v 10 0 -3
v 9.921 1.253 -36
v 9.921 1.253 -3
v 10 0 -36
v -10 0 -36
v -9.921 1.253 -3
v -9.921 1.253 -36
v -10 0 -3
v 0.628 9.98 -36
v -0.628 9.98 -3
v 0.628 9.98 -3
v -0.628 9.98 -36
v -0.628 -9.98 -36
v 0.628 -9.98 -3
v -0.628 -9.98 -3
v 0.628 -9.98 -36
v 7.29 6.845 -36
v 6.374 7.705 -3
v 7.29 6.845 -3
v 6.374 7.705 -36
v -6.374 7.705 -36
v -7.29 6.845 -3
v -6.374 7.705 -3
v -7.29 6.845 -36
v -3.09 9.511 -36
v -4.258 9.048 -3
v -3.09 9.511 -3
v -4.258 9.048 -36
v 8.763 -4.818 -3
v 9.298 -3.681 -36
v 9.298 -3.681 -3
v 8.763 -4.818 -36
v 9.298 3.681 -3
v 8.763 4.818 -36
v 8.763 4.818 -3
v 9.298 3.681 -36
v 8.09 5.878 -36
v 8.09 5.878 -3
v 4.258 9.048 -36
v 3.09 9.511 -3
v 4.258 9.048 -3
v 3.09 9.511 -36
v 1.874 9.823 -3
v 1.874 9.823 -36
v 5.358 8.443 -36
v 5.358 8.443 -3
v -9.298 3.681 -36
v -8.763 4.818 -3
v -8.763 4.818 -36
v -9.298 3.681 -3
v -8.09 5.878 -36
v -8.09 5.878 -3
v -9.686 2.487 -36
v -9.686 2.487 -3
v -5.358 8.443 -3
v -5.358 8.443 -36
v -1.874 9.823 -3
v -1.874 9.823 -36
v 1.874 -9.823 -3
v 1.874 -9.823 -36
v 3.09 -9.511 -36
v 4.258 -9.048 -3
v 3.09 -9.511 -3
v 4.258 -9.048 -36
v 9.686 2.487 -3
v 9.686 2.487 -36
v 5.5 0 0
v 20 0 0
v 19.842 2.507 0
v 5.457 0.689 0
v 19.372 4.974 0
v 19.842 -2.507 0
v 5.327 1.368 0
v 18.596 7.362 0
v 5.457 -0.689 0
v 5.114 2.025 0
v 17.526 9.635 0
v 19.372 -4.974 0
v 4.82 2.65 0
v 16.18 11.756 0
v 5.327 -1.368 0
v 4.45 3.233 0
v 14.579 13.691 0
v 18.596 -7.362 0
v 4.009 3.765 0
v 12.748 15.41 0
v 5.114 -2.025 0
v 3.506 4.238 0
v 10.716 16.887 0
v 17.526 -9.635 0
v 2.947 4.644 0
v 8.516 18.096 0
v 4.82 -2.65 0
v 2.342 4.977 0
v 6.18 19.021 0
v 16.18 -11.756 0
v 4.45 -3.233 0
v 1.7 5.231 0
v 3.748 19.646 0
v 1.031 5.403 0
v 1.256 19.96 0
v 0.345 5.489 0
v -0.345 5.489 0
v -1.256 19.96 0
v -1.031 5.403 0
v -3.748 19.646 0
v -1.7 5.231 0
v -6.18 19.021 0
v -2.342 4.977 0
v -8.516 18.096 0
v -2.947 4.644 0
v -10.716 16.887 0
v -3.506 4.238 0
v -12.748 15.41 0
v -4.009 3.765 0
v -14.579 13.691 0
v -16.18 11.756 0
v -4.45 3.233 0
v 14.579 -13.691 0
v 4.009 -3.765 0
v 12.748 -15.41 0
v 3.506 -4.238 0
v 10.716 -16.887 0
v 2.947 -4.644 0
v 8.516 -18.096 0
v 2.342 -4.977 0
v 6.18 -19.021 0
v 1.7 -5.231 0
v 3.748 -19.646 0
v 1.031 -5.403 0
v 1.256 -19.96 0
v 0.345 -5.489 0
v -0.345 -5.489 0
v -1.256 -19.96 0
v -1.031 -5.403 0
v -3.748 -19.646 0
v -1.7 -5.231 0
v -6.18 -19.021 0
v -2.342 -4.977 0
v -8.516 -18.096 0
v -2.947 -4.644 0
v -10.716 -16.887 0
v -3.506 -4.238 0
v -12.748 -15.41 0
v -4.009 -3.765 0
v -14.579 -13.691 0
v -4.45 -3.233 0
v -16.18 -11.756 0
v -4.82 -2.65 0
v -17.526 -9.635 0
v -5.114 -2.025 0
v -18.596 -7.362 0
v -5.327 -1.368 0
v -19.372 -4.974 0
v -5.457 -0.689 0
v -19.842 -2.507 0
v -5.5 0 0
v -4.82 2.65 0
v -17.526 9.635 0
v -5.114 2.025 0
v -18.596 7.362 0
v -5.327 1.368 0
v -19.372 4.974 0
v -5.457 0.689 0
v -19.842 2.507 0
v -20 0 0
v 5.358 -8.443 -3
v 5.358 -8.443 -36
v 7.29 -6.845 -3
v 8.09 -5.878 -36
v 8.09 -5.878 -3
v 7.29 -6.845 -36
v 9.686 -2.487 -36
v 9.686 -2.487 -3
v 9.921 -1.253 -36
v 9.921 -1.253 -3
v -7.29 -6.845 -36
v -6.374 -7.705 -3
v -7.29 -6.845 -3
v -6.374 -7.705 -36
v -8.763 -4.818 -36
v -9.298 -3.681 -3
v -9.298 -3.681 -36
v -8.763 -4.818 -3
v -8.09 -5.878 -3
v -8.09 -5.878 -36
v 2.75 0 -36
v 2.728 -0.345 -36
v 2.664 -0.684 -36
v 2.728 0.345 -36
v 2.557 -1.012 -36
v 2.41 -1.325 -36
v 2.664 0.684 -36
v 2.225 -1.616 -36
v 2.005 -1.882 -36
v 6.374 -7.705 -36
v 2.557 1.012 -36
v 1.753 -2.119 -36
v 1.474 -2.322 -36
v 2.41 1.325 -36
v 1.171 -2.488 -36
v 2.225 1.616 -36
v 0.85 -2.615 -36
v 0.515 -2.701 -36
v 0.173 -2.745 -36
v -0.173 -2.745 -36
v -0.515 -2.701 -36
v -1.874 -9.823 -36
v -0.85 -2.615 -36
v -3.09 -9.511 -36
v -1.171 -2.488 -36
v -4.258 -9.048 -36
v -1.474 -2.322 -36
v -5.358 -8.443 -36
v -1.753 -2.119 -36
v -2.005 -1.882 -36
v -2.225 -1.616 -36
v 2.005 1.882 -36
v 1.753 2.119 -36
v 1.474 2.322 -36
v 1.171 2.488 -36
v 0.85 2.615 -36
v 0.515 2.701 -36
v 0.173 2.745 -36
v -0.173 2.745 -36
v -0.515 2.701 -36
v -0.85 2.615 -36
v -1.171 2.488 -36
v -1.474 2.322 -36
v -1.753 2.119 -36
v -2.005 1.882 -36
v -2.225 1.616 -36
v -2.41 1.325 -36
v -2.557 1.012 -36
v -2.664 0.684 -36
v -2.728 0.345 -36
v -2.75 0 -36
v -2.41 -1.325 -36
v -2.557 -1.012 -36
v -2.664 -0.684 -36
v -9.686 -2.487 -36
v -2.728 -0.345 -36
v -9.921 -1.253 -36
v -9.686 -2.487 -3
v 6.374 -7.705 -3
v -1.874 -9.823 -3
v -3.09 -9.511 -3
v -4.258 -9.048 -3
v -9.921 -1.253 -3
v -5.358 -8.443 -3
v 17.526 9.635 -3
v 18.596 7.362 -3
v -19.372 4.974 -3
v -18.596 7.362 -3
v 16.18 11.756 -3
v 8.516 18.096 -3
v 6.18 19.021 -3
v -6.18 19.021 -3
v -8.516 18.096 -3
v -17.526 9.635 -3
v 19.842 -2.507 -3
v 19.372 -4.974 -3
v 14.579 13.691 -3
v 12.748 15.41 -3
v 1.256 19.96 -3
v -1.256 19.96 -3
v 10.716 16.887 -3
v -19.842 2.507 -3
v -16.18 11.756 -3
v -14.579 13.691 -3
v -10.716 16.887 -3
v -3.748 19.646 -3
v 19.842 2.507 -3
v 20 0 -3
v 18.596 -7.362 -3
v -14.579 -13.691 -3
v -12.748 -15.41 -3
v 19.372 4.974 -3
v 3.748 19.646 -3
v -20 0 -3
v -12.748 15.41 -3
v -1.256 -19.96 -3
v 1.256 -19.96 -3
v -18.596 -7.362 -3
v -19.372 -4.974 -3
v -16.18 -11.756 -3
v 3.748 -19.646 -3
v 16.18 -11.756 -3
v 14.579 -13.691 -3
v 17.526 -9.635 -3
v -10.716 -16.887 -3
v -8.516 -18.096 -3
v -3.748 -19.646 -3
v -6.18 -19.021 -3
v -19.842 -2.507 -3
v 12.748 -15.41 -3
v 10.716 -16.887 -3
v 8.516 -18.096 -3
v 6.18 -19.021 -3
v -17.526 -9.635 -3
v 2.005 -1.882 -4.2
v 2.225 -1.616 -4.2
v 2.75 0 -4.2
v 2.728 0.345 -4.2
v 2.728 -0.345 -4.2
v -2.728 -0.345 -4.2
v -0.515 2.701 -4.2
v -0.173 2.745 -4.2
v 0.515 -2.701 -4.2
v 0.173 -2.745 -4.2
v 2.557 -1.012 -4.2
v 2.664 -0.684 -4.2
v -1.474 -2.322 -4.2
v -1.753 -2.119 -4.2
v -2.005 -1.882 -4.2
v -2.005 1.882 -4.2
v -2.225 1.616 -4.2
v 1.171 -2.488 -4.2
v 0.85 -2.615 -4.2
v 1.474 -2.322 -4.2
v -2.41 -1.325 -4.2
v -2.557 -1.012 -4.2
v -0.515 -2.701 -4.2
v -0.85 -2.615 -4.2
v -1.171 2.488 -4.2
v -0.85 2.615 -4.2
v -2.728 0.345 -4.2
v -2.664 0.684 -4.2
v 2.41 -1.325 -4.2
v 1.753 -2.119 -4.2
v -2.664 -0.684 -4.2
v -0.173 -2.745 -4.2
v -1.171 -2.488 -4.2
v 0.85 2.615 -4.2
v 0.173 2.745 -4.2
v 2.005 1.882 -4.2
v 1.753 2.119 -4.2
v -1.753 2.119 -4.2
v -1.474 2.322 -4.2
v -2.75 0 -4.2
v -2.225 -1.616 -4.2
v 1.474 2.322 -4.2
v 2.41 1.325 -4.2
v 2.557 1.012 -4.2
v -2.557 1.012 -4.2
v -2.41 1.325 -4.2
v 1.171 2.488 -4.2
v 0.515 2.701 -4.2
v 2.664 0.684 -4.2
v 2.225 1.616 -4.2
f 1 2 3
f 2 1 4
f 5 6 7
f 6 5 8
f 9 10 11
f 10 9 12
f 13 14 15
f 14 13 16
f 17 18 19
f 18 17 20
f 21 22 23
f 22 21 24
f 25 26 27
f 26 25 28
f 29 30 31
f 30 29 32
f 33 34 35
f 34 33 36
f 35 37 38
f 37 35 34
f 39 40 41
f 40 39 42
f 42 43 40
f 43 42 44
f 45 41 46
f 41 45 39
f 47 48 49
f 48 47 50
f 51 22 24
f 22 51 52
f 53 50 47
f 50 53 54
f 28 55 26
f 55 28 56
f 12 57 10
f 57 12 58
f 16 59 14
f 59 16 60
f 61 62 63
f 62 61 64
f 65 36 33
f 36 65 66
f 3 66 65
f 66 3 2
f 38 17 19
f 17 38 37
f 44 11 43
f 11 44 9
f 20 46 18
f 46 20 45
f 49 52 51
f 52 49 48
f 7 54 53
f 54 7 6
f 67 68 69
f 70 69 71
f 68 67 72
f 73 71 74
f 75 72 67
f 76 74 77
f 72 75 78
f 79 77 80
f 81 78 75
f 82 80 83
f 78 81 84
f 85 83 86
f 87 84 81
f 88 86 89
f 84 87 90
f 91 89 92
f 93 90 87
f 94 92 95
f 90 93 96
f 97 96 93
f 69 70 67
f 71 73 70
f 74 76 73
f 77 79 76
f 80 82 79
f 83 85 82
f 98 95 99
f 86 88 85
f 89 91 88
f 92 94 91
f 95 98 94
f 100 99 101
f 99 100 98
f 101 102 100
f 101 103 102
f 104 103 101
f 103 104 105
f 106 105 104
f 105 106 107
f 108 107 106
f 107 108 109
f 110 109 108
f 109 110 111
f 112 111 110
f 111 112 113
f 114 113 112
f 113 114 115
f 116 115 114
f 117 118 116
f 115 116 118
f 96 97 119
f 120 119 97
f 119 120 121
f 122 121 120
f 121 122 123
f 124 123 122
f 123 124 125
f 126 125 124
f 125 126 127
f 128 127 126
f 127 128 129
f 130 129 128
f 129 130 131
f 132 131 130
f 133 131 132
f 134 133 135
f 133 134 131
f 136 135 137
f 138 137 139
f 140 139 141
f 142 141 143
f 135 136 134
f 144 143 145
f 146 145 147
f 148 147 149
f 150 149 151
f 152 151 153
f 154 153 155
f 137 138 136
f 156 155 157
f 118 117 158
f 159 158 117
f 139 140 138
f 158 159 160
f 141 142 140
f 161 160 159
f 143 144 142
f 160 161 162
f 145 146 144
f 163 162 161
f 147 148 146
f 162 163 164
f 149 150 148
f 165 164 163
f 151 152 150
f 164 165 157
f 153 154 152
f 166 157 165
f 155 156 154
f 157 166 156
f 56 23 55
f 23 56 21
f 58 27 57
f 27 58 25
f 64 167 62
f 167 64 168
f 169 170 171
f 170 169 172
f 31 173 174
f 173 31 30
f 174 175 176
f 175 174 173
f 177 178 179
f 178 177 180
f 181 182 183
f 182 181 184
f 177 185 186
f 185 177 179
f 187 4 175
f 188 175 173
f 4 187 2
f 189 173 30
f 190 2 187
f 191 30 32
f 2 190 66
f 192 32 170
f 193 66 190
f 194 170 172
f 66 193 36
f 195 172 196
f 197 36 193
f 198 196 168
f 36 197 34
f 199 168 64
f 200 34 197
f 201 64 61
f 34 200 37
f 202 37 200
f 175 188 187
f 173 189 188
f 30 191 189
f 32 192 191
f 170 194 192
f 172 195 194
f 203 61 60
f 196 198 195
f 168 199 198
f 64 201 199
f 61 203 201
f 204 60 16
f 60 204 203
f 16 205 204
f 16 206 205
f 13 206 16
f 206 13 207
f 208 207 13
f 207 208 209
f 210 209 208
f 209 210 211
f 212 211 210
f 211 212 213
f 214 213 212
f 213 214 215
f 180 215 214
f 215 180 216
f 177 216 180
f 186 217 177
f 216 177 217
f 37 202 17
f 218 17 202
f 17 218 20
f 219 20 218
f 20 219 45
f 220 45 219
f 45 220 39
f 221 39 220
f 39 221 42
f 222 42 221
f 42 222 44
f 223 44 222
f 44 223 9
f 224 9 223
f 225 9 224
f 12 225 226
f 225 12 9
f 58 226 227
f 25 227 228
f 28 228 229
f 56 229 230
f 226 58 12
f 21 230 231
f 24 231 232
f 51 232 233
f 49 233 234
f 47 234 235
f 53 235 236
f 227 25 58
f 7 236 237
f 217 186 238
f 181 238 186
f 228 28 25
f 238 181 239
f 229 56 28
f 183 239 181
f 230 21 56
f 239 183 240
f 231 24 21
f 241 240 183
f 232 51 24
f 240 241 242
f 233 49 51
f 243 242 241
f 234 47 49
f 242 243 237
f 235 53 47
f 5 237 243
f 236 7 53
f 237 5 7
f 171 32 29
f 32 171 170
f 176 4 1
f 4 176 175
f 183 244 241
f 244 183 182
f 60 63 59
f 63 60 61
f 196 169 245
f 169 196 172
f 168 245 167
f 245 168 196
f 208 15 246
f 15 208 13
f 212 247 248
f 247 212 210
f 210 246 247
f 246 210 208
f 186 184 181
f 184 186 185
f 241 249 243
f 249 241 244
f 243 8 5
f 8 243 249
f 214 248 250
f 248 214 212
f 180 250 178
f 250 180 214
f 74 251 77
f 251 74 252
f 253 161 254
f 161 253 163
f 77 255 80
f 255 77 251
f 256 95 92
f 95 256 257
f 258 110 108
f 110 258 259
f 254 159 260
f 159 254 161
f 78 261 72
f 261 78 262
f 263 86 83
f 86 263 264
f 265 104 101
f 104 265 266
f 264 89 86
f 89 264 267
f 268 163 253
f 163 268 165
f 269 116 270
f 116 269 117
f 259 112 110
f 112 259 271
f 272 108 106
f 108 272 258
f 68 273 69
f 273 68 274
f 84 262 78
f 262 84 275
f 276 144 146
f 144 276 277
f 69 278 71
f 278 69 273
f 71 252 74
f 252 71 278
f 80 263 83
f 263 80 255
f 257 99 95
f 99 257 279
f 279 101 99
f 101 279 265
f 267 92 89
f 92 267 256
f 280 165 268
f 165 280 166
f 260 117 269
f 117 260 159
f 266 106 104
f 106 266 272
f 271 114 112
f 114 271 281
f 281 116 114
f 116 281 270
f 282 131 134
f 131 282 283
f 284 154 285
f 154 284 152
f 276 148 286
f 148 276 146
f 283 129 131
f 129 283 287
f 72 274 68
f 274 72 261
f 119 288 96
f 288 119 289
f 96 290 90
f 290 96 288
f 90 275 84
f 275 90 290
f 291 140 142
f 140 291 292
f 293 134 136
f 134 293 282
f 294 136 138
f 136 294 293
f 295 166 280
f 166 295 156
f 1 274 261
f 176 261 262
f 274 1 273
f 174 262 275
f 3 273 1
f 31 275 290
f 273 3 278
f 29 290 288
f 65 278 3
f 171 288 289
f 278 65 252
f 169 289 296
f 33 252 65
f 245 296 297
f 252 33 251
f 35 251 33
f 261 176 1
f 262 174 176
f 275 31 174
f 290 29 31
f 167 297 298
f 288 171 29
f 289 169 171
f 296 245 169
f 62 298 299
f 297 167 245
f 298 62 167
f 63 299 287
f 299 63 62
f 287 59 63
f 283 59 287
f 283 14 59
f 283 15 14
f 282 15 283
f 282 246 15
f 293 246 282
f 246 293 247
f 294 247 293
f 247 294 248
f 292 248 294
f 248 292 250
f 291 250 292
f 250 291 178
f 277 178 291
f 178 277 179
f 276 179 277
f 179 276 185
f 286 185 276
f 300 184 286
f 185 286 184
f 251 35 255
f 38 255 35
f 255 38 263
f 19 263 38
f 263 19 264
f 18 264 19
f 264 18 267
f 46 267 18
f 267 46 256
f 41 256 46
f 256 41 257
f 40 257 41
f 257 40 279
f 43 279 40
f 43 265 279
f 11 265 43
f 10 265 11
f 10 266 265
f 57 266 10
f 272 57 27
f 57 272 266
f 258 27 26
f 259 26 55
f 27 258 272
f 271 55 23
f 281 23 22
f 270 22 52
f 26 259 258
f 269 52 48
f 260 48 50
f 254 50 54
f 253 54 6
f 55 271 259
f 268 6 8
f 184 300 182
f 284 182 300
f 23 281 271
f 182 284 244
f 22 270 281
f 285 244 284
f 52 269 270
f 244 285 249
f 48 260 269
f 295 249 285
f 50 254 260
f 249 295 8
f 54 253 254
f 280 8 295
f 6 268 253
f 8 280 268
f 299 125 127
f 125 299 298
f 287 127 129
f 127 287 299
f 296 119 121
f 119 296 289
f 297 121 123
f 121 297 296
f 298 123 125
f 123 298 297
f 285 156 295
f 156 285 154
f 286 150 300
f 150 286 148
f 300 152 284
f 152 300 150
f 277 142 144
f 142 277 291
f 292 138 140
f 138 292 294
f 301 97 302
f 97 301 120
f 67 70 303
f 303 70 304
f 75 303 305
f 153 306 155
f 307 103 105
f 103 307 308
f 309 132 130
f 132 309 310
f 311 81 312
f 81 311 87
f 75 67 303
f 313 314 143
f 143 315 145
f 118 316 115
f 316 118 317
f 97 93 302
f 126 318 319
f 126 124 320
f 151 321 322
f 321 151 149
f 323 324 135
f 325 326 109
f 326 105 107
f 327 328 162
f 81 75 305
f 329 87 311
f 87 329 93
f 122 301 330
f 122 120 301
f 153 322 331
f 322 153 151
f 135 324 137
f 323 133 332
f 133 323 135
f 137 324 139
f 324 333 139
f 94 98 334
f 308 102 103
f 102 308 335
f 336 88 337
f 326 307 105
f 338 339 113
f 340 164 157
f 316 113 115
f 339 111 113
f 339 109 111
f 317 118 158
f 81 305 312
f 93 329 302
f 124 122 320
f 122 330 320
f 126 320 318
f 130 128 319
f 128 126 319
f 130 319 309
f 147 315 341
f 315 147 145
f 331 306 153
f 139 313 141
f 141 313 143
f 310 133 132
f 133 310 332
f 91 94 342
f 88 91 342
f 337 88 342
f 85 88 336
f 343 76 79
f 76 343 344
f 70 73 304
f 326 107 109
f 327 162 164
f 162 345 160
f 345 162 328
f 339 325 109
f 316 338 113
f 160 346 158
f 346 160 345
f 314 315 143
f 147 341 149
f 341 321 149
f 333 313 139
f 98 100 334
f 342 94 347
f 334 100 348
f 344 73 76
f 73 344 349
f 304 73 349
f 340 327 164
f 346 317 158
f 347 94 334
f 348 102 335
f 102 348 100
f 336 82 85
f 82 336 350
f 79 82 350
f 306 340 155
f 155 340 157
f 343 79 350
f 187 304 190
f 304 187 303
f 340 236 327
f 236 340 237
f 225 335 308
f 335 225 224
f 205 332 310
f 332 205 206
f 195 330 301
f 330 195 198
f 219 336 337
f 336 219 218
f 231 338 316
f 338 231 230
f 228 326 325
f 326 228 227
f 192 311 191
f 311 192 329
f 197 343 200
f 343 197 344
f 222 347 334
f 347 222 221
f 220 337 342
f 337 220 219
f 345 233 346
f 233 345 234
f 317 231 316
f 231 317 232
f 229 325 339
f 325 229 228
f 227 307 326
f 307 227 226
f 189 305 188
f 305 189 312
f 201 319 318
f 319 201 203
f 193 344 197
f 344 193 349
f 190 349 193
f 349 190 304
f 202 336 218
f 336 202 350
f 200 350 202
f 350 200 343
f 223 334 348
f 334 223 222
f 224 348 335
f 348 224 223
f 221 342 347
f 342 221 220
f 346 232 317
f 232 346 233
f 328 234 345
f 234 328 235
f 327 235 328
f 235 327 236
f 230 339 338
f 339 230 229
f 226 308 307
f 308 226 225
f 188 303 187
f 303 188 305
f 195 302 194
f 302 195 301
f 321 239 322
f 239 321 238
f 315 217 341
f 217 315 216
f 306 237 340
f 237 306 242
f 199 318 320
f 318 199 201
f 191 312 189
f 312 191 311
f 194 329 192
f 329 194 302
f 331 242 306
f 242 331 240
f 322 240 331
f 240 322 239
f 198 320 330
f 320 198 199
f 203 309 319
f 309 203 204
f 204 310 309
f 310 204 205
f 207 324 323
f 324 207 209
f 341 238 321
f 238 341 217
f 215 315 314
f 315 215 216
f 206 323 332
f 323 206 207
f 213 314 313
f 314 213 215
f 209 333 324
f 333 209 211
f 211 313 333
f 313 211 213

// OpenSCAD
$fn = 50;


difference() {
	union() {
		translate(v = [0, 0, -36.0000000000]) {
			cylinder(h = 36, r = 10.0000000000);
		}
		translate(v = [0, 0, -3.0000000000]) {
			cylinder(h = 3, r = 20.0000000000);
		}
	}
	union() {
		translate(v = [0, 0, 0]) {
			rotate(a = [0, 0, 0]) {
				difference() {
					union() {
						#translate(v = [0, 0, -36.0000000000]) {
							cylinder(h = 36, r = 2.2500000000);
						}
						#translate(v = [0, 0, -4.2000000000]) {
							cylinder(h = 4.2000000000, r = 10.0000000000, r1 = 2.7500000000, r2 = 5.5000000000);
						}
						#translate(v = [0, 0, -36.0000000000]) {
							cylinder(h = 36, r = 2.7500000000);
						}
						#translate(v = [0, 0, -36.0000000000]) {
							cylinder(h = 36, r = 2.2500000000);
						}
					}
					union();
				}
			}
		}
	}
}
